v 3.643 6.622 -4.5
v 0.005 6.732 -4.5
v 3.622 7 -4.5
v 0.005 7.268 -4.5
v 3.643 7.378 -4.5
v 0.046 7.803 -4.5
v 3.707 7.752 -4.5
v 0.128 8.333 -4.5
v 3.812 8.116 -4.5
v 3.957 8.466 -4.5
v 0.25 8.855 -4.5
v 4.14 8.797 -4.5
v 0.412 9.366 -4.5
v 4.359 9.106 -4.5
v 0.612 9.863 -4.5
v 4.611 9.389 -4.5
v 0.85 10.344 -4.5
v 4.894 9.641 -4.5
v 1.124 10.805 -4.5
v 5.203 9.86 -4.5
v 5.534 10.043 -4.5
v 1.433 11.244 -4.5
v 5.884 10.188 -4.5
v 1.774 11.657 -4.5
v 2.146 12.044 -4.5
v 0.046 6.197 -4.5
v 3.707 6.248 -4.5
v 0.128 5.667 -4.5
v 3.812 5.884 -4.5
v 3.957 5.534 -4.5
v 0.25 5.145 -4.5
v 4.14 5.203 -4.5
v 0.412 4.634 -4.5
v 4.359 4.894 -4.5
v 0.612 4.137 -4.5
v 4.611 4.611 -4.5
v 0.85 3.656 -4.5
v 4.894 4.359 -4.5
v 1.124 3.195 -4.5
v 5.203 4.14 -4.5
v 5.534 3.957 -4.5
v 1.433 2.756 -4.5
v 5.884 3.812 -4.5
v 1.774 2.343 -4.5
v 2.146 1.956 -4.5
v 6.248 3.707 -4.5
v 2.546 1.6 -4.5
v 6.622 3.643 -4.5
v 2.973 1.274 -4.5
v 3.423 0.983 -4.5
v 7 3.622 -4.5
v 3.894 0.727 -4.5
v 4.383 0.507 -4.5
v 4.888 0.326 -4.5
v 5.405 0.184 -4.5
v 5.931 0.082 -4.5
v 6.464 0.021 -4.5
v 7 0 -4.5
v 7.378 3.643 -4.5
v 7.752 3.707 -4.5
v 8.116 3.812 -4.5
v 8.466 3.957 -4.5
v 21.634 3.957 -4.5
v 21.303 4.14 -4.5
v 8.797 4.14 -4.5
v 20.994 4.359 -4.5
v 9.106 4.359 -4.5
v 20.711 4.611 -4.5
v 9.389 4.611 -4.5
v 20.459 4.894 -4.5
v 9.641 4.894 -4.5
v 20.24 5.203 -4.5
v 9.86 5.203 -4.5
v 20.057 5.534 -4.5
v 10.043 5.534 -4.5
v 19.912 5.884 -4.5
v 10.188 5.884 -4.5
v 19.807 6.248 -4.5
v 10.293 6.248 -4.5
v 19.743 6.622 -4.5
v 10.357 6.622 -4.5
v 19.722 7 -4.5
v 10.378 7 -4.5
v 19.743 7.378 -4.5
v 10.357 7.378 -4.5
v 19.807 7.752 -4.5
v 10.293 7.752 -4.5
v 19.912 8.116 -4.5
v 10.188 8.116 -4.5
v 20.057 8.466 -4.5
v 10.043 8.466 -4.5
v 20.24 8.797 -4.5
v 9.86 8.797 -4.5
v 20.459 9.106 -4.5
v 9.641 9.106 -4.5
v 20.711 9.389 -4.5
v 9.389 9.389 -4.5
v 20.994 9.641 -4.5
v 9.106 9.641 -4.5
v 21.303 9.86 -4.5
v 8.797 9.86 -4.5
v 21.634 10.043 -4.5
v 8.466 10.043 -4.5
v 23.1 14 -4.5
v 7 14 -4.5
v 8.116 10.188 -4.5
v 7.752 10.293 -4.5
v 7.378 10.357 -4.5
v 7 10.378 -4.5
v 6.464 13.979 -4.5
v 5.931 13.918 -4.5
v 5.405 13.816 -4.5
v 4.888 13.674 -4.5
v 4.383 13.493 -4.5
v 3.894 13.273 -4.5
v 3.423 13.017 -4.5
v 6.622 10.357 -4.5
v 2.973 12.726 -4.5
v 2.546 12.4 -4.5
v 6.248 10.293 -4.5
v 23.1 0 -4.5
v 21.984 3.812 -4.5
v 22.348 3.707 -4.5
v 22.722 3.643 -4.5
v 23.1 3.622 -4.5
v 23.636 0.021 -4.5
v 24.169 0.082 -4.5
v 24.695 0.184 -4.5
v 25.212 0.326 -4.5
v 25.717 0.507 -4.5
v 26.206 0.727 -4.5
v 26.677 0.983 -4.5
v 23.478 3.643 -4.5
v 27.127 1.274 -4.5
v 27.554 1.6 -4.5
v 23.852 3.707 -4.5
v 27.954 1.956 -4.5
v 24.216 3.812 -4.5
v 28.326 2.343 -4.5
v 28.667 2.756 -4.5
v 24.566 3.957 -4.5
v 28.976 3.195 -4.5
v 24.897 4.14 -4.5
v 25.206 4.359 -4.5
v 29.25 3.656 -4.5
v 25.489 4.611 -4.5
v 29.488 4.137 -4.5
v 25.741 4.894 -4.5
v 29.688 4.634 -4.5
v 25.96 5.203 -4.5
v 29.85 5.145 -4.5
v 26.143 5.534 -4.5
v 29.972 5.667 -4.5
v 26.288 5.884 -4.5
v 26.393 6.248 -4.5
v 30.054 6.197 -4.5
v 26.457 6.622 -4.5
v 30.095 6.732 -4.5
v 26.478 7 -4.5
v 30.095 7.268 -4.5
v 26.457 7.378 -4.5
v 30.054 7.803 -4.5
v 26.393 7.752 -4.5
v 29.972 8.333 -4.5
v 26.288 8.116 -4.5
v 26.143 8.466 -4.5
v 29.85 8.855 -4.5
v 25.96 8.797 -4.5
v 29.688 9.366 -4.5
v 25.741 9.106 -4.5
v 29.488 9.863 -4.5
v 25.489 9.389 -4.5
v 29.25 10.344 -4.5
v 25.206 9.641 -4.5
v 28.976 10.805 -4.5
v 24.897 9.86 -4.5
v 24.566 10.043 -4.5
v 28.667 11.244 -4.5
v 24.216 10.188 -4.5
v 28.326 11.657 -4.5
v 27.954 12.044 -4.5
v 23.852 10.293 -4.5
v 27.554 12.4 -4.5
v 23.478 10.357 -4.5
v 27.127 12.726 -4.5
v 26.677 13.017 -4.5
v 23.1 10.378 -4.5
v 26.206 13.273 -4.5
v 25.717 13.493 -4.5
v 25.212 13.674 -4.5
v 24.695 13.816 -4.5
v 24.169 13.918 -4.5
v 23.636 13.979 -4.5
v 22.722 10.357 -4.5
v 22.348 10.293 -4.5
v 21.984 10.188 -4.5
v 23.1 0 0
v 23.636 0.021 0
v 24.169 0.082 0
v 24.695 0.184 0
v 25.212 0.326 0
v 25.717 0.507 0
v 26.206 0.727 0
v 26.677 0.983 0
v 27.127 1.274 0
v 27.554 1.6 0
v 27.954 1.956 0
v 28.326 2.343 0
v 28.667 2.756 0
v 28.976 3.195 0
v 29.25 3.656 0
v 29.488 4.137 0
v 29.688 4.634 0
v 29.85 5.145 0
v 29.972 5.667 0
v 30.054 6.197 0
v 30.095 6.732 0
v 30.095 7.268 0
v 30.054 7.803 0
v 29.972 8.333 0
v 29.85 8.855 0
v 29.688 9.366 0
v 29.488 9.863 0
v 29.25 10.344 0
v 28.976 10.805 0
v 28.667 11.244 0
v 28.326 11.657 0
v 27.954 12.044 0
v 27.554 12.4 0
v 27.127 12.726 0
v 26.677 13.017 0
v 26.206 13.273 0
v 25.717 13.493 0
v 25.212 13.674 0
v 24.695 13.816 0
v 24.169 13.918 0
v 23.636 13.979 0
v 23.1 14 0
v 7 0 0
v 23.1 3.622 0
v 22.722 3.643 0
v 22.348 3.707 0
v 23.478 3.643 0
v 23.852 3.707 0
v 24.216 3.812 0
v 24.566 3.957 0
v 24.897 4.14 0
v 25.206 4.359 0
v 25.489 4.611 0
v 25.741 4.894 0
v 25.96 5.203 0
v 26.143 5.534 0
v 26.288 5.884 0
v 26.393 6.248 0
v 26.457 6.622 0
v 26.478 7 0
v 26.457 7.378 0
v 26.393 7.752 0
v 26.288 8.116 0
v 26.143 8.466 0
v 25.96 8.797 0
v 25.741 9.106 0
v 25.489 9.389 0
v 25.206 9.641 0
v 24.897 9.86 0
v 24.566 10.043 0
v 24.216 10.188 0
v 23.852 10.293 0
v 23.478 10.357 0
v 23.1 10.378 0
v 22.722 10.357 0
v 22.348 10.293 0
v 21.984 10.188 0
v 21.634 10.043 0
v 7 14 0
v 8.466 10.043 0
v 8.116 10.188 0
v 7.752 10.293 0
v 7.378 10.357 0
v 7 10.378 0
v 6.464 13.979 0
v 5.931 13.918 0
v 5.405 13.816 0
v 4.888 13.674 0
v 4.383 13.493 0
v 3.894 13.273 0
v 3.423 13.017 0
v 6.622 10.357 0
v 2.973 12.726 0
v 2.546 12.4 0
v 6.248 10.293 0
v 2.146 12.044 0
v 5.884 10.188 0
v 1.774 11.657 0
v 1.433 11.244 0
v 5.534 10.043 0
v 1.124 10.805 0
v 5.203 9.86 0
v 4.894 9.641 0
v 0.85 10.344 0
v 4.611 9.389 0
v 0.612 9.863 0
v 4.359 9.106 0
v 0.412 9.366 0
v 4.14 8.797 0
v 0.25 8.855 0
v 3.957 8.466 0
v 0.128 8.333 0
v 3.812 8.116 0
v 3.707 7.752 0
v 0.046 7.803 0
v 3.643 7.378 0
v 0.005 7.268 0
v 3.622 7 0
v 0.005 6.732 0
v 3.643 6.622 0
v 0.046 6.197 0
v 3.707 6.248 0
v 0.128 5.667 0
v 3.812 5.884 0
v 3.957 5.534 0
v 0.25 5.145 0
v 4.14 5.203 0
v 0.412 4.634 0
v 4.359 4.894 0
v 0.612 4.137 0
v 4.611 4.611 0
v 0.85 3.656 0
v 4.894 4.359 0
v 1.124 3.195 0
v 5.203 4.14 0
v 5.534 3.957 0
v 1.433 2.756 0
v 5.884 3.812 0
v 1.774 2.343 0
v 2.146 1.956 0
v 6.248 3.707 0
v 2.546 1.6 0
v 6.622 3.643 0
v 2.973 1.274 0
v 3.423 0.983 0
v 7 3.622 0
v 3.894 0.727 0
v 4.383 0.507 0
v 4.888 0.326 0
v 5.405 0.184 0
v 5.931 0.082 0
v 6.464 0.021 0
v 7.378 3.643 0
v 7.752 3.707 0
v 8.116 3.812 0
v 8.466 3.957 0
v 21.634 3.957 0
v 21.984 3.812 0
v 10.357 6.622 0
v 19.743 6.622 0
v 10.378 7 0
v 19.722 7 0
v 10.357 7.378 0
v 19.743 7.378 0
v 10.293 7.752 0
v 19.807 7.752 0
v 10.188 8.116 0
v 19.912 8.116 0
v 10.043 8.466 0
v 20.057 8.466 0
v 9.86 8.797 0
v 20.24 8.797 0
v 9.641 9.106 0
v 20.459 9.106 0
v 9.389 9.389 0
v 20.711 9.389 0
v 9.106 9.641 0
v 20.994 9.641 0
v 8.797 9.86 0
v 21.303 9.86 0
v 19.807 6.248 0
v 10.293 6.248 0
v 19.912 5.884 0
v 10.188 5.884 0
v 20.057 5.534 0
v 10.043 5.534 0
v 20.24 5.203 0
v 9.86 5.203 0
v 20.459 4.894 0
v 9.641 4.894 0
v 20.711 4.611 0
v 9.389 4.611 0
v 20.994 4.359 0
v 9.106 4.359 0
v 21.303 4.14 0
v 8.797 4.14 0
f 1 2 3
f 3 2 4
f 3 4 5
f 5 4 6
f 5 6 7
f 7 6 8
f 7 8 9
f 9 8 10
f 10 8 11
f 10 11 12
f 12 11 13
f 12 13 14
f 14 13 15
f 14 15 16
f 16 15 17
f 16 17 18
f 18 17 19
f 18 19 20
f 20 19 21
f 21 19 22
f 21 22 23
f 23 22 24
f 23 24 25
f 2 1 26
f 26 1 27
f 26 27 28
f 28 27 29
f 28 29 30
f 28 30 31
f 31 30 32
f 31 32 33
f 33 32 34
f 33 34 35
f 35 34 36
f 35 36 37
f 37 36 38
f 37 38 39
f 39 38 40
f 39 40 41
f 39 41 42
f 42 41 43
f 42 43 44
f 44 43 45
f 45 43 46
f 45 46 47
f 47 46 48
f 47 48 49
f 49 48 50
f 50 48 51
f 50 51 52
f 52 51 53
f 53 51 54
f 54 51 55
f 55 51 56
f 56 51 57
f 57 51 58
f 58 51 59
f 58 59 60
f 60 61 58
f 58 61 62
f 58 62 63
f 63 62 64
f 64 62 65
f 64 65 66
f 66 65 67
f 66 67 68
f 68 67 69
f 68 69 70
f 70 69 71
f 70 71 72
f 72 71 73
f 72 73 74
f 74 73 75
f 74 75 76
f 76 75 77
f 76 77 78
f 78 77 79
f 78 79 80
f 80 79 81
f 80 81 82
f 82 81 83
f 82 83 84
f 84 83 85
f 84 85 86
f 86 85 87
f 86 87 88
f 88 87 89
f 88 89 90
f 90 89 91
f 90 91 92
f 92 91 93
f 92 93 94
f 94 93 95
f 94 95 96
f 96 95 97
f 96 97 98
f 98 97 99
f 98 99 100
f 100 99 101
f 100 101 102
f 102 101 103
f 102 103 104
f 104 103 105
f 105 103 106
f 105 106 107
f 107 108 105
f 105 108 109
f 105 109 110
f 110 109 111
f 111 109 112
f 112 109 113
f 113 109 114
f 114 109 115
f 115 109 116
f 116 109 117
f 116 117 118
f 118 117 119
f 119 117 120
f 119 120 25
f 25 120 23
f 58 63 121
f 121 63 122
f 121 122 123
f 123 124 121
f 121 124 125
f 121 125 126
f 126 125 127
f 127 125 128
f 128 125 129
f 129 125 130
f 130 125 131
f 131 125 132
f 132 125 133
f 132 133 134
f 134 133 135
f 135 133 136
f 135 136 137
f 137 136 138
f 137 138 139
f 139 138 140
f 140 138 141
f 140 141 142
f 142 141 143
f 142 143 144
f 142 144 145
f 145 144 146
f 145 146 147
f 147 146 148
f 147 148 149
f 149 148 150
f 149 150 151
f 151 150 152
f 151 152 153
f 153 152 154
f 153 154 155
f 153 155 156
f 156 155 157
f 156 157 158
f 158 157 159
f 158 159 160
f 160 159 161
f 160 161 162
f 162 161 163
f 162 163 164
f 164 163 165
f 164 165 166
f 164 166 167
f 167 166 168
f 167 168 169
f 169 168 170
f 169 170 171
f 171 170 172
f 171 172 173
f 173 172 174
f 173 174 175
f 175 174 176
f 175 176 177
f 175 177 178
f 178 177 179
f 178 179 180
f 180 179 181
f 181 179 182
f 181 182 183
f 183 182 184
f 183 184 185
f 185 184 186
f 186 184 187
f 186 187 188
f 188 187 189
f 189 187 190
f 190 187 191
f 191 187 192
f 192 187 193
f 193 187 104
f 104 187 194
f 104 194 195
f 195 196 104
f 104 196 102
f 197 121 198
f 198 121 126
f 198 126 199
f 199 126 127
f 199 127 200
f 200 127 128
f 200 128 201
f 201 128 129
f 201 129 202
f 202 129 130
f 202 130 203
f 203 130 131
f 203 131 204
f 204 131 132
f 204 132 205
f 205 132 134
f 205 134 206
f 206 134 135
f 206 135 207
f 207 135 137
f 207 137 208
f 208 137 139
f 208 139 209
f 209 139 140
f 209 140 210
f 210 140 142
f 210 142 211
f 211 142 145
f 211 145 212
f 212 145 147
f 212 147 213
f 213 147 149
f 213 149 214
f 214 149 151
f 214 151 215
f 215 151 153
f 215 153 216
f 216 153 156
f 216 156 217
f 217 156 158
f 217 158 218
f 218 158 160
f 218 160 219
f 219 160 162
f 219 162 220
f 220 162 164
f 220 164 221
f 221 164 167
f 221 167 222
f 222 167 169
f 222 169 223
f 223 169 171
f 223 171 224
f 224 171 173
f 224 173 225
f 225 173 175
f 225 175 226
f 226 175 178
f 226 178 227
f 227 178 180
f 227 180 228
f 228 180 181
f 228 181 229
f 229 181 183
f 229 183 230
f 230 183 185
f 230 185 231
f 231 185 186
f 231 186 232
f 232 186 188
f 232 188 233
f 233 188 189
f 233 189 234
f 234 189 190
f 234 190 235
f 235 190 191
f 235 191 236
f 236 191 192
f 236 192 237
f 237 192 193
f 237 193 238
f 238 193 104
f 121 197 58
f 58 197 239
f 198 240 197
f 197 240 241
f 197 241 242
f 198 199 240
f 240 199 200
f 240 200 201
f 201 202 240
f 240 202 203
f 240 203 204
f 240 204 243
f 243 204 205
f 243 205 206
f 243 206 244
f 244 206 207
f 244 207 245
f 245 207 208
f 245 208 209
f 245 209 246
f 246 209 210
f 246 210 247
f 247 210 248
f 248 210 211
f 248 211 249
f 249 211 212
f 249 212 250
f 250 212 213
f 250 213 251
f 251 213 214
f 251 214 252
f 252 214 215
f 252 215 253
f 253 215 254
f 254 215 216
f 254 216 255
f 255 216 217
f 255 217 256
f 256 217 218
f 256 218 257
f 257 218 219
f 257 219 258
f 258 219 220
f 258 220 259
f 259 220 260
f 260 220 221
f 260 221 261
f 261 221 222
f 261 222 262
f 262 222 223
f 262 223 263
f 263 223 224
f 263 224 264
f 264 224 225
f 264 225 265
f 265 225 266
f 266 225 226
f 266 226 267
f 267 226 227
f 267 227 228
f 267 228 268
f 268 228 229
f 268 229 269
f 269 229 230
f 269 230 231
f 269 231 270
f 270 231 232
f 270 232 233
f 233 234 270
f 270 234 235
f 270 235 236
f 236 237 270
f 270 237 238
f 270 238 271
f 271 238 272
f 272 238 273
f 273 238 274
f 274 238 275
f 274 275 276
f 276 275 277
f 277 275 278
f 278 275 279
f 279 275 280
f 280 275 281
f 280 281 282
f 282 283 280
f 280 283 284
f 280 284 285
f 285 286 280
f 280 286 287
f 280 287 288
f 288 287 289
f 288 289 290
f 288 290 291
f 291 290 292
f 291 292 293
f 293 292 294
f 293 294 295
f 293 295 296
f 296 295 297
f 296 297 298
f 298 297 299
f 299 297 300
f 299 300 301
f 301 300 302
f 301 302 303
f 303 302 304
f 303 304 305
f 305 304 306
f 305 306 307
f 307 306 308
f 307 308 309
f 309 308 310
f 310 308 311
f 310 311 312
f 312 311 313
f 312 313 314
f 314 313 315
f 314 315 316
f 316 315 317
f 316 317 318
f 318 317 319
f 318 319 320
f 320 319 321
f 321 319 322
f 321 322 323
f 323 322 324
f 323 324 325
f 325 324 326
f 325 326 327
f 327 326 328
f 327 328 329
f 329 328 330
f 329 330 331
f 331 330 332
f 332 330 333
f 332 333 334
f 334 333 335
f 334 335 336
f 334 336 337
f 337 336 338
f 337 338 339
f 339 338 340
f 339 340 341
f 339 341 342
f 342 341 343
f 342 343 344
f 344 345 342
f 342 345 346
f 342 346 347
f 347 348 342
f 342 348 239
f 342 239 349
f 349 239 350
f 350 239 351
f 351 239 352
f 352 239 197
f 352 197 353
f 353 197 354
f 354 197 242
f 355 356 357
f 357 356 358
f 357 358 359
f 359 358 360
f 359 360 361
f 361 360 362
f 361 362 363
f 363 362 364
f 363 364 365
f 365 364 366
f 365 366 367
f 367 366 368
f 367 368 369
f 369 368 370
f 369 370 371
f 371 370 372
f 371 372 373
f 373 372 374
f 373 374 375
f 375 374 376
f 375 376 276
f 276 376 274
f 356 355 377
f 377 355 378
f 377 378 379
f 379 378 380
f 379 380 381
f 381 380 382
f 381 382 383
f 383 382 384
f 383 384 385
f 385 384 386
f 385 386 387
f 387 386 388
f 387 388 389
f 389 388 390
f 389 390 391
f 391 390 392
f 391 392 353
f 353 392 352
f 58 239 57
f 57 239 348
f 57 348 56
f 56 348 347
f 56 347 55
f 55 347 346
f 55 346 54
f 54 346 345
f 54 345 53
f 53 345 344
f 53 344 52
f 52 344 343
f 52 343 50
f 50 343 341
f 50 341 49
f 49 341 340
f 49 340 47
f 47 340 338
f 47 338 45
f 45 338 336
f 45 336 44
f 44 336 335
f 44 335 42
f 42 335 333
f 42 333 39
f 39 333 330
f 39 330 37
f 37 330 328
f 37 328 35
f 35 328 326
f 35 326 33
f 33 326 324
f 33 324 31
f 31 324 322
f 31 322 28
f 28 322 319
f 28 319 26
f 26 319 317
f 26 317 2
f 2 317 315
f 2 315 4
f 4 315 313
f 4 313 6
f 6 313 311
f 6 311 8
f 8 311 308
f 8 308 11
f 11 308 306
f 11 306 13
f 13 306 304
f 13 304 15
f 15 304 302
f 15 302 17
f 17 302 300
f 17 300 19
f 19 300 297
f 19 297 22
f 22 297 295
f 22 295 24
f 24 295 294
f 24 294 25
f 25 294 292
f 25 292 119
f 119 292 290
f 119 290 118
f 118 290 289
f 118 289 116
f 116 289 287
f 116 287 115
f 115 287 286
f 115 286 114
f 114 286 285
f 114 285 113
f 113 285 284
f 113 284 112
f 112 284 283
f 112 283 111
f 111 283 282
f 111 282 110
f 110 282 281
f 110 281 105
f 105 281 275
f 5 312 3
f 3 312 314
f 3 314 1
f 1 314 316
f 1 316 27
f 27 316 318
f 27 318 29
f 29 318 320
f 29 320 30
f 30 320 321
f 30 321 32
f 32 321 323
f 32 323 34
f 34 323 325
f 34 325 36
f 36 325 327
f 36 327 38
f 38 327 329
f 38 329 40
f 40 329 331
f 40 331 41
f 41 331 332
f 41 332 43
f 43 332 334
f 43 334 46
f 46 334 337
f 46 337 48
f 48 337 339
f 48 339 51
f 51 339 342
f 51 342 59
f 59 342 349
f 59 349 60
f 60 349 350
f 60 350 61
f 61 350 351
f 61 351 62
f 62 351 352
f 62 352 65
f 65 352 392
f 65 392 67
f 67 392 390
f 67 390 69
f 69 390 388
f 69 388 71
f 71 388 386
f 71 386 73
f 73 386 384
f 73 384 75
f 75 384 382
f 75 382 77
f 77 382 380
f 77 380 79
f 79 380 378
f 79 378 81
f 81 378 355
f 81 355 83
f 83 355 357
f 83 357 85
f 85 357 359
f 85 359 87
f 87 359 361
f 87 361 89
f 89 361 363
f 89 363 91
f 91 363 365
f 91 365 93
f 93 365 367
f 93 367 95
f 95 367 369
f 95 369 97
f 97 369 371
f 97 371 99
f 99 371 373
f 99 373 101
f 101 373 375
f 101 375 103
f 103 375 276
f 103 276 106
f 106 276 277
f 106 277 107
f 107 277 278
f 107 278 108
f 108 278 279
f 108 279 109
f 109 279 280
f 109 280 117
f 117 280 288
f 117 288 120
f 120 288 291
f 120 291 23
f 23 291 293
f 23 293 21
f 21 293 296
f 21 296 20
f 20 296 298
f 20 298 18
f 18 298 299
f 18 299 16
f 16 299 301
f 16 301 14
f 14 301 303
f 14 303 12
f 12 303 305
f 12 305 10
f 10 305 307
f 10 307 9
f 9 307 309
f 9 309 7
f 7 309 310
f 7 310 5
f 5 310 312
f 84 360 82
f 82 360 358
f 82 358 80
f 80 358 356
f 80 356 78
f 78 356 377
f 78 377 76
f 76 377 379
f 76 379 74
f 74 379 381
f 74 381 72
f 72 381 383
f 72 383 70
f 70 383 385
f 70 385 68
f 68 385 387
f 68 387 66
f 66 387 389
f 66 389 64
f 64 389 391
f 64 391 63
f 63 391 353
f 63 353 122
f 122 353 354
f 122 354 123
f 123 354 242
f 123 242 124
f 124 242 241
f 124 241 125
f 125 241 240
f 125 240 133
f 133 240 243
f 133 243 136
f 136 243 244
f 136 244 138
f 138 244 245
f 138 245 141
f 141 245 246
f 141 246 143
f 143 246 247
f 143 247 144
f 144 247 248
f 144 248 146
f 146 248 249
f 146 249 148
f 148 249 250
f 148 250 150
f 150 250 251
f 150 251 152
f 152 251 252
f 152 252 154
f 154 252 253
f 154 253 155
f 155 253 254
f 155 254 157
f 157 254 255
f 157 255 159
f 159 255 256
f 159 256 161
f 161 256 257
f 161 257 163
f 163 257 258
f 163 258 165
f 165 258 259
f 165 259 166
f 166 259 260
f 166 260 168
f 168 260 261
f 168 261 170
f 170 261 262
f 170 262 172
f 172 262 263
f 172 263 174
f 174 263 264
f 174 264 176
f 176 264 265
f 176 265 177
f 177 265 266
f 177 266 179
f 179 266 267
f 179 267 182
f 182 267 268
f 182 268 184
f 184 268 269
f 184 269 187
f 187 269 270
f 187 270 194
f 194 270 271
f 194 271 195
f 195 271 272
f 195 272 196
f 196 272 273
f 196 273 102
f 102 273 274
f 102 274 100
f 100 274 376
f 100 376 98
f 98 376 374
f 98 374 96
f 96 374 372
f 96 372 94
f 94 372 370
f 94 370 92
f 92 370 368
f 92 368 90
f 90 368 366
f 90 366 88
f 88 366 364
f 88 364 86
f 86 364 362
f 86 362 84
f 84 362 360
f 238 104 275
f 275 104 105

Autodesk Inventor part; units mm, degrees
ref_plane "YZ Plane" through (0, 0, 0) normal (1, 0, 0) x (0, 1, 0)
ref_plane "XZ Plane" through (0, 0, 0) normal (0, 1, 0) x (-1, 0, 0)
ref_plane "XY Plane" through (0, 0, 0) normal (0, 0, 1) x (1, 0, 0)
sketch "Sketch2" plane through (0, 0, 0) normal (0, 1, 0) x (-1, 0, 0)
  line L0 (0, -4.5) -> (-30.1, -4.5)
  line L1 (-30.1, -4.5) -> (-30.1, 0)
  line L2 (-30.1, 0) -> (0, 0)
  line L3 (0, 0) -> (0, -4.5)
  line L4 (-7, -4.5) -> (-7, 0) construction
  line L5 (-23.1, 0) -> (-23.1, -4.5) construction
  point P0 (-7, -2.25)
  point P1 (-23.1, -2.25)
  dimension "d7" = 16.1
  dimension "d8" = 4.5
  dimension "d9" = 7
  dimension "d11" = 7
extrude "Extrusion1" add sketch "Sketch2" along normal blind 14
sketch "Sketch3" plane through (0, 0, 0) normal (0, 0, 1) x (1, 0, 0)
  line L0 (30.1, 0) -> (30.1, 14) projected
  line L1 (0, 0) -> (0, 14) projected
  point P0 (7, 7)
  point P1 (23.1, 7)
  point P2 (30.1, 7)
  point P3 (7, 0)
  point P4 (23.1, 0)
hole "Hole1" at (7, 7, 0) at (23.1, 7, 0) direction (0, 0, -1) diameter 6.756 end through all clearance for "Flat Head Machine Screw (82)" size "1/4" standard "Ansi Unified Screw Threads"
fillet "Fillet1" radius 7 4 edges at (0, 14, -2.25) (0, 0, -2.25) (30.1, 0, -2.25) (30.1, 14, -2.25)
properties part number "R3_3DPrint"
